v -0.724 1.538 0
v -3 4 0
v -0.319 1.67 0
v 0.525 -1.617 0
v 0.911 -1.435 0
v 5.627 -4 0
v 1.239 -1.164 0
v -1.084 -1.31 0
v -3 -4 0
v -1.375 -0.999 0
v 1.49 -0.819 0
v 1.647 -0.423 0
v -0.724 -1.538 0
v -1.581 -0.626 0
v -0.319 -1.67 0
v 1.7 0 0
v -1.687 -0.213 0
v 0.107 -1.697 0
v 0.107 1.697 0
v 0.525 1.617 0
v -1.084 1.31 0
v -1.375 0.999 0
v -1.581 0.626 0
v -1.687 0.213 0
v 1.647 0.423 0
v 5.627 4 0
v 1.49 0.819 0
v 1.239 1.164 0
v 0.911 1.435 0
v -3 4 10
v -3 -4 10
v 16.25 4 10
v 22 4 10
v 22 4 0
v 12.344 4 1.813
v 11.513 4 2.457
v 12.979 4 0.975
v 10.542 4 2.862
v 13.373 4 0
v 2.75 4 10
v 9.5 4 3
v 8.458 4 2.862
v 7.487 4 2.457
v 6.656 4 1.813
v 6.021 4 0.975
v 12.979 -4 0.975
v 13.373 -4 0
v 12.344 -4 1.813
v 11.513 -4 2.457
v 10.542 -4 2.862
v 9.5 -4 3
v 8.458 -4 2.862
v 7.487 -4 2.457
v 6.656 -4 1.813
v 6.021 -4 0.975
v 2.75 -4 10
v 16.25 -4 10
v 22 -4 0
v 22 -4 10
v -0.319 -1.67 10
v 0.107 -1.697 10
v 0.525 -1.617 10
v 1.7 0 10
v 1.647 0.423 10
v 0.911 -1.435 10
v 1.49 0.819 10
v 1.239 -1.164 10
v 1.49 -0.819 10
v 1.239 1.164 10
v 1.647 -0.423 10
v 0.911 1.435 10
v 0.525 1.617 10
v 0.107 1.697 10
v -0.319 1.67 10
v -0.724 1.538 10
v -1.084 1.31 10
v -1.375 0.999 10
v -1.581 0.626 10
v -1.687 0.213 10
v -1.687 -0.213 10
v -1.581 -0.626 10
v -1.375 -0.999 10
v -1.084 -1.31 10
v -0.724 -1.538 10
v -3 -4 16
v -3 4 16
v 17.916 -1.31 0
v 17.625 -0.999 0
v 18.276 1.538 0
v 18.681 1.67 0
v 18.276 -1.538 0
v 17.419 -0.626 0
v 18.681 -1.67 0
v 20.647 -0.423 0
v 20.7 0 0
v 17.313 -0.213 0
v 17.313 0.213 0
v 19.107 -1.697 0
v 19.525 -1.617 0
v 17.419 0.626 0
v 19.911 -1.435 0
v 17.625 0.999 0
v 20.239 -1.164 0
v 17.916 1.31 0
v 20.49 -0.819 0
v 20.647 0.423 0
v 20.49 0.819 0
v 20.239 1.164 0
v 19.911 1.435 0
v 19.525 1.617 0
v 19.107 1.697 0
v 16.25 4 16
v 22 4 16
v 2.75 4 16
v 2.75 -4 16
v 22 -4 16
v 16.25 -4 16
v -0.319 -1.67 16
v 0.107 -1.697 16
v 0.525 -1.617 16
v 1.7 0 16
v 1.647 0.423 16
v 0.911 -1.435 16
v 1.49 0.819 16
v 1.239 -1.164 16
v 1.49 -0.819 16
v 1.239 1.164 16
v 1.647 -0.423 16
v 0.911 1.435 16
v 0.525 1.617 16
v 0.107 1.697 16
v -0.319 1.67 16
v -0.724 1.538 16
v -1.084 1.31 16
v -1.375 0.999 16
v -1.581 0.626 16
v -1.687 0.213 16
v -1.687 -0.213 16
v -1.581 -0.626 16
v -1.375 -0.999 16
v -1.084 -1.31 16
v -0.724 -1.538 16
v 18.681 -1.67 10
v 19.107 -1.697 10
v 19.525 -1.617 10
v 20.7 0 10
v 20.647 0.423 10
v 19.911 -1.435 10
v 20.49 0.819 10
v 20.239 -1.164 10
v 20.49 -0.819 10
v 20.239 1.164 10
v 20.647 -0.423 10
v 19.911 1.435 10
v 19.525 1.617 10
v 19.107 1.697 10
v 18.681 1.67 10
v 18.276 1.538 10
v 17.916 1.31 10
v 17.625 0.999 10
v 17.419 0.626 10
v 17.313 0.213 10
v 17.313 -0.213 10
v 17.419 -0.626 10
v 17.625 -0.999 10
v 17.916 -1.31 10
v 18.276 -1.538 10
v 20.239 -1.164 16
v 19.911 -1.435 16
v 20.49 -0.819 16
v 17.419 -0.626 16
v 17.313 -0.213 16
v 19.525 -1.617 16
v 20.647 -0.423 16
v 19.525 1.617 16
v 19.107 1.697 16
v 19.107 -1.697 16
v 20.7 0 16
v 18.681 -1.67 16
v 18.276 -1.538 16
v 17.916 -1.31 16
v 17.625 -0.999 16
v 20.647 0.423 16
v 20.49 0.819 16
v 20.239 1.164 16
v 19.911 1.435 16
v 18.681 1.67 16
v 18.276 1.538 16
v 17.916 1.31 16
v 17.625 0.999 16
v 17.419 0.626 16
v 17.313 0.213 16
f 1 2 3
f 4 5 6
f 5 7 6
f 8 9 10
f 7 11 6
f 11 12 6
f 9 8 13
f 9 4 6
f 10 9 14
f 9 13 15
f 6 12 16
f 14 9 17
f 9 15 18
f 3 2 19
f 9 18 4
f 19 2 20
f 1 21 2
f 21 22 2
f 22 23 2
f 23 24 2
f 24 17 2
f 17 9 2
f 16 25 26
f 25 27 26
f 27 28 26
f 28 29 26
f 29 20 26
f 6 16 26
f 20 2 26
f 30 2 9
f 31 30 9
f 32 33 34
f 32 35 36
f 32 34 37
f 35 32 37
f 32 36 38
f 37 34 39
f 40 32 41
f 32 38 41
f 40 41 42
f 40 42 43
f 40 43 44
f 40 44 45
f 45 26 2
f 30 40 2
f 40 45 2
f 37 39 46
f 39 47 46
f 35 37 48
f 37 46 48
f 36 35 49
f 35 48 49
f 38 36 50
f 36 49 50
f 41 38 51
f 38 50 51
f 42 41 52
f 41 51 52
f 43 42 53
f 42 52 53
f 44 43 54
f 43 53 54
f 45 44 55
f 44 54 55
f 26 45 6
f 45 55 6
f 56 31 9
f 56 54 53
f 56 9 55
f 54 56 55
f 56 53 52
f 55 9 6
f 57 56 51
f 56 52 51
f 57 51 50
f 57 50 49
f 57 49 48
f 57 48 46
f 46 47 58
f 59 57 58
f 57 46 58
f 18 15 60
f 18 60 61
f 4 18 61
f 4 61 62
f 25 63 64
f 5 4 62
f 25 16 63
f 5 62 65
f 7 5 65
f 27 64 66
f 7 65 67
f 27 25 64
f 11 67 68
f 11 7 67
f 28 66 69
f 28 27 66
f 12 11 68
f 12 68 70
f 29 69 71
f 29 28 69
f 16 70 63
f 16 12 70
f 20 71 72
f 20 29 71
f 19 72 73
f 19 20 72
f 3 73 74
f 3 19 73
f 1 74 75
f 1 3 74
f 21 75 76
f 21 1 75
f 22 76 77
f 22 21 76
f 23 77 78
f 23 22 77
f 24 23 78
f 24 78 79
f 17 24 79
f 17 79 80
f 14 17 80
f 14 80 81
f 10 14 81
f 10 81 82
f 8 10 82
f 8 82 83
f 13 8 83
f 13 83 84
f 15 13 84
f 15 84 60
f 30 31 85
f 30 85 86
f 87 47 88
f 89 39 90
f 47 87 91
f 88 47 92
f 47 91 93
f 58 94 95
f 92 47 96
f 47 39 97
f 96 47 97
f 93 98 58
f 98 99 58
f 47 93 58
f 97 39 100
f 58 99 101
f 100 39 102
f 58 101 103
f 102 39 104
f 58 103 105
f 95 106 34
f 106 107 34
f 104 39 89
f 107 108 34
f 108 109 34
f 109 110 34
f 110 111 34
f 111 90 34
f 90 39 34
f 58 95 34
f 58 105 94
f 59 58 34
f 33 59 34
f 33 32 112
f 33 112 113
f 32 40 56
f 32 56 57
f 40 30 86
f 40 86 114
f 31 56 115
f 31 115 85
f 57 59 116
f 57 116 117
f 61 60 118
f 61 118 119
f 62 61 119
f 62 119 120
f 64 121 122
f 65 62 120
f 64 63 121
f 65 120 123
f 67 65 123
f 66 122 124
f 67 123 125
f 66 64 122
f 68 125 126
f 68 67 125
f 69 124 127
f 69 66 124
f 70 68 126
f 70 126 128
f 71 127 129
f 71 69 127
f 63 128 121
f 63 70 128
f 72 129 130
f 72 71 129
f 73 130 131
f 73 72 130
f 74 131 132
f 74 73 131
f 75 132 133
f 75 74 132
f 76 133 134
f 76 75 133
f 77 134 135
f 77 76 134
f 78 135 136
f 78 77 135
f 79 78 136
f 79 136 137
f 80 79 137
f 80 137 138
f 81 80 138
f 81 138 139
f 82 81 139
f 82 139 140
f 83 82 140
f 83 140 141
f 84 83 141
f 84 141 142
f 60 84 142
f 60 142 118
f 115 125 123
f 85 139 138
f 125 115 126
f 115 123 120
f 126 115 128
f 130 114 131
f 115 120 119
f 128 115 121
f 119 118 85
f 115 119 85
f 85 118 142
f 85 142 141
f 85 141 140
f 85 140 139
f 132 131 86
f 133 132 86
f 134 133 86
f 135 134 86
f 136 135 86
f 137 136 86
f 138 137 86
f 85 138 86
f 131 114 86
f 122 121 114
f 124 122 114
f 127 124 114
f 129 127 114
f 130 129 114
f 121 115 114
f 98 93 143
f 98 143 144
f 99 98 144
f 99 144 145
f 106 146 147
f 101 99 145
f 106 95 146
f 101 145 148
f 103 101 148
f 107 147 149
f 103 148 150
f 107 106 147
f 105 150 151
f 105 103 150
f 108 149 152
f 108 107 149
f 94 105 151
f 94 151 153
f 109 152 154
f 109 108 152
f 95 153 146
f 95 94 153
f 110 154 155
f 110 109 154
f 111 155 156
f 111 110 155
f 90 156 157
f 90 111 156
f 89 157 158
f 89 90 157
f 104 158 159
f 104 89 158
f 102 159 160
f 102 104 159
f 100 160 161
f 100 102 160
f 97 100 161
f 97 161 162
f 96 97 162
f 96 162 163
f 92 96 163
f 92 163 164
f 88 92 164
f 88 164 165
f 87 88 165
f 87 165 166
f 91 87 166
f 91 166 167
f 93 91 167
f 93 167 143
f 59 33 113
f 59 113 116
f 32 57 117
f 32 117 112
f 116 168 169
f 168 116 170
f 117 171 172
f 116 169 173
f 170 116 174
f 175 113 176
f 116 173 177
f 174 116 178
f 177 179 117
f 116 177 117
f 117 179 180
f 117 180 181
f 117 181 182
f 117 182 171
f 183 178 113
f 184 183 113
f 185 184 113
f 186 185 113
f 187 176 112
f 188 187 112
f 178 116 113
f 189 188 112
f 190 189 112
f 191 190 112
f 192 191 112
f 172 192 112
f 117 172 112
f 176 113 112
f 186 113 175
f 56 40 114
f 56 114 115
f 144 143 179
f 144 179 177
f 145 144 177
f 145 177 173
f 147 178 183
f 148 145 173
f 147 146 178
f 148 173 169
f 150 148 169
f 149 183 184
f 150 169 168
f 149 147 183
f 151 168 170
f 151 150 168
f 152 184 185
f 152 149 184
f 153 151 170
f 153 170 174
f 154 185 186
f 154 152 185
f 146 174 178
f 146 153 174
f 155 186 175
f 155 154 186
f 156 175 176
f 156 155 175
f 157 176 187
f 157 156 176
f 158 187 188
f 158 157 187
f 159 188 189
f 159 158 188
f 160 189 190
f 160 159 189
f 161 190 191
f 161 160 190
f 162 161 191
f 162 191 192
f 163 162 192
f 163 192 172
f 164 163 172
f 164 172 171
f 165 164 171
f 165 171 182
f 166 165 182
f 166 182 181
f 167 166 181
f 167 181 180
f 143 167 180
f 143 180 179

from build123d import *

# Parameters (mm, degrees)
SKETCH_W     = 25
SKETCH_H     = 8
SKETCH_R     = 1.7
PAD_DEPTH    = 10
SKETCH002_R  = 4
POCKET_DEPTH = 8.001
SKETCH003_W  = 5.75
SKETCH003_H  = 8
SKETCH003_R  = 1.7
PAD001_DEPTH = 6


with BuildPart() as part:
    # Sketch → Pad (new body)
    with BuildSketch(Plane.XY):
        with Locations((9.5, 0)):
            Rectangle(SKETCH_W, SKETCH_H)
        Circle(SKETCH_R, mode=Mode.SUBTRACT)
        with Locations((19, 0)):
            Circle(SKETCH_R, mode=Mode.SUBTRACT)
    extrude(amount=PAD_DEPTH)

    # Sketch002 → Pocket (cut, through all)
    with BuildSketch(Plane.XZ.offset(4)):
        with Locations((9.5, -1)):
            Circle(SKETCH002_R)
    extrude(amount=-POCKET_DEPTH, mode=Mode.SUBTRACT)

    # Sketch003 → Pad001 (new body)
    with BuildSketch(Plane.XY.offset(10)):
        with Locations((-0.125, 0)):
            Rectangle(SKETCH003_W, SKETCH003_H)
        Circle(SKETCH003_R, mode=Mode.SUBTRACT)
        with Locations((19.125, 0)):
            Rectangle(SKETCH003_W, SKETCH003_H)
        with Locations((19, 0)):
            Circle(SKETCH003_R, mode=Mode.SUBTRACT)
    extrude(amount=PAD001_DEPTH)


solid = part.part
